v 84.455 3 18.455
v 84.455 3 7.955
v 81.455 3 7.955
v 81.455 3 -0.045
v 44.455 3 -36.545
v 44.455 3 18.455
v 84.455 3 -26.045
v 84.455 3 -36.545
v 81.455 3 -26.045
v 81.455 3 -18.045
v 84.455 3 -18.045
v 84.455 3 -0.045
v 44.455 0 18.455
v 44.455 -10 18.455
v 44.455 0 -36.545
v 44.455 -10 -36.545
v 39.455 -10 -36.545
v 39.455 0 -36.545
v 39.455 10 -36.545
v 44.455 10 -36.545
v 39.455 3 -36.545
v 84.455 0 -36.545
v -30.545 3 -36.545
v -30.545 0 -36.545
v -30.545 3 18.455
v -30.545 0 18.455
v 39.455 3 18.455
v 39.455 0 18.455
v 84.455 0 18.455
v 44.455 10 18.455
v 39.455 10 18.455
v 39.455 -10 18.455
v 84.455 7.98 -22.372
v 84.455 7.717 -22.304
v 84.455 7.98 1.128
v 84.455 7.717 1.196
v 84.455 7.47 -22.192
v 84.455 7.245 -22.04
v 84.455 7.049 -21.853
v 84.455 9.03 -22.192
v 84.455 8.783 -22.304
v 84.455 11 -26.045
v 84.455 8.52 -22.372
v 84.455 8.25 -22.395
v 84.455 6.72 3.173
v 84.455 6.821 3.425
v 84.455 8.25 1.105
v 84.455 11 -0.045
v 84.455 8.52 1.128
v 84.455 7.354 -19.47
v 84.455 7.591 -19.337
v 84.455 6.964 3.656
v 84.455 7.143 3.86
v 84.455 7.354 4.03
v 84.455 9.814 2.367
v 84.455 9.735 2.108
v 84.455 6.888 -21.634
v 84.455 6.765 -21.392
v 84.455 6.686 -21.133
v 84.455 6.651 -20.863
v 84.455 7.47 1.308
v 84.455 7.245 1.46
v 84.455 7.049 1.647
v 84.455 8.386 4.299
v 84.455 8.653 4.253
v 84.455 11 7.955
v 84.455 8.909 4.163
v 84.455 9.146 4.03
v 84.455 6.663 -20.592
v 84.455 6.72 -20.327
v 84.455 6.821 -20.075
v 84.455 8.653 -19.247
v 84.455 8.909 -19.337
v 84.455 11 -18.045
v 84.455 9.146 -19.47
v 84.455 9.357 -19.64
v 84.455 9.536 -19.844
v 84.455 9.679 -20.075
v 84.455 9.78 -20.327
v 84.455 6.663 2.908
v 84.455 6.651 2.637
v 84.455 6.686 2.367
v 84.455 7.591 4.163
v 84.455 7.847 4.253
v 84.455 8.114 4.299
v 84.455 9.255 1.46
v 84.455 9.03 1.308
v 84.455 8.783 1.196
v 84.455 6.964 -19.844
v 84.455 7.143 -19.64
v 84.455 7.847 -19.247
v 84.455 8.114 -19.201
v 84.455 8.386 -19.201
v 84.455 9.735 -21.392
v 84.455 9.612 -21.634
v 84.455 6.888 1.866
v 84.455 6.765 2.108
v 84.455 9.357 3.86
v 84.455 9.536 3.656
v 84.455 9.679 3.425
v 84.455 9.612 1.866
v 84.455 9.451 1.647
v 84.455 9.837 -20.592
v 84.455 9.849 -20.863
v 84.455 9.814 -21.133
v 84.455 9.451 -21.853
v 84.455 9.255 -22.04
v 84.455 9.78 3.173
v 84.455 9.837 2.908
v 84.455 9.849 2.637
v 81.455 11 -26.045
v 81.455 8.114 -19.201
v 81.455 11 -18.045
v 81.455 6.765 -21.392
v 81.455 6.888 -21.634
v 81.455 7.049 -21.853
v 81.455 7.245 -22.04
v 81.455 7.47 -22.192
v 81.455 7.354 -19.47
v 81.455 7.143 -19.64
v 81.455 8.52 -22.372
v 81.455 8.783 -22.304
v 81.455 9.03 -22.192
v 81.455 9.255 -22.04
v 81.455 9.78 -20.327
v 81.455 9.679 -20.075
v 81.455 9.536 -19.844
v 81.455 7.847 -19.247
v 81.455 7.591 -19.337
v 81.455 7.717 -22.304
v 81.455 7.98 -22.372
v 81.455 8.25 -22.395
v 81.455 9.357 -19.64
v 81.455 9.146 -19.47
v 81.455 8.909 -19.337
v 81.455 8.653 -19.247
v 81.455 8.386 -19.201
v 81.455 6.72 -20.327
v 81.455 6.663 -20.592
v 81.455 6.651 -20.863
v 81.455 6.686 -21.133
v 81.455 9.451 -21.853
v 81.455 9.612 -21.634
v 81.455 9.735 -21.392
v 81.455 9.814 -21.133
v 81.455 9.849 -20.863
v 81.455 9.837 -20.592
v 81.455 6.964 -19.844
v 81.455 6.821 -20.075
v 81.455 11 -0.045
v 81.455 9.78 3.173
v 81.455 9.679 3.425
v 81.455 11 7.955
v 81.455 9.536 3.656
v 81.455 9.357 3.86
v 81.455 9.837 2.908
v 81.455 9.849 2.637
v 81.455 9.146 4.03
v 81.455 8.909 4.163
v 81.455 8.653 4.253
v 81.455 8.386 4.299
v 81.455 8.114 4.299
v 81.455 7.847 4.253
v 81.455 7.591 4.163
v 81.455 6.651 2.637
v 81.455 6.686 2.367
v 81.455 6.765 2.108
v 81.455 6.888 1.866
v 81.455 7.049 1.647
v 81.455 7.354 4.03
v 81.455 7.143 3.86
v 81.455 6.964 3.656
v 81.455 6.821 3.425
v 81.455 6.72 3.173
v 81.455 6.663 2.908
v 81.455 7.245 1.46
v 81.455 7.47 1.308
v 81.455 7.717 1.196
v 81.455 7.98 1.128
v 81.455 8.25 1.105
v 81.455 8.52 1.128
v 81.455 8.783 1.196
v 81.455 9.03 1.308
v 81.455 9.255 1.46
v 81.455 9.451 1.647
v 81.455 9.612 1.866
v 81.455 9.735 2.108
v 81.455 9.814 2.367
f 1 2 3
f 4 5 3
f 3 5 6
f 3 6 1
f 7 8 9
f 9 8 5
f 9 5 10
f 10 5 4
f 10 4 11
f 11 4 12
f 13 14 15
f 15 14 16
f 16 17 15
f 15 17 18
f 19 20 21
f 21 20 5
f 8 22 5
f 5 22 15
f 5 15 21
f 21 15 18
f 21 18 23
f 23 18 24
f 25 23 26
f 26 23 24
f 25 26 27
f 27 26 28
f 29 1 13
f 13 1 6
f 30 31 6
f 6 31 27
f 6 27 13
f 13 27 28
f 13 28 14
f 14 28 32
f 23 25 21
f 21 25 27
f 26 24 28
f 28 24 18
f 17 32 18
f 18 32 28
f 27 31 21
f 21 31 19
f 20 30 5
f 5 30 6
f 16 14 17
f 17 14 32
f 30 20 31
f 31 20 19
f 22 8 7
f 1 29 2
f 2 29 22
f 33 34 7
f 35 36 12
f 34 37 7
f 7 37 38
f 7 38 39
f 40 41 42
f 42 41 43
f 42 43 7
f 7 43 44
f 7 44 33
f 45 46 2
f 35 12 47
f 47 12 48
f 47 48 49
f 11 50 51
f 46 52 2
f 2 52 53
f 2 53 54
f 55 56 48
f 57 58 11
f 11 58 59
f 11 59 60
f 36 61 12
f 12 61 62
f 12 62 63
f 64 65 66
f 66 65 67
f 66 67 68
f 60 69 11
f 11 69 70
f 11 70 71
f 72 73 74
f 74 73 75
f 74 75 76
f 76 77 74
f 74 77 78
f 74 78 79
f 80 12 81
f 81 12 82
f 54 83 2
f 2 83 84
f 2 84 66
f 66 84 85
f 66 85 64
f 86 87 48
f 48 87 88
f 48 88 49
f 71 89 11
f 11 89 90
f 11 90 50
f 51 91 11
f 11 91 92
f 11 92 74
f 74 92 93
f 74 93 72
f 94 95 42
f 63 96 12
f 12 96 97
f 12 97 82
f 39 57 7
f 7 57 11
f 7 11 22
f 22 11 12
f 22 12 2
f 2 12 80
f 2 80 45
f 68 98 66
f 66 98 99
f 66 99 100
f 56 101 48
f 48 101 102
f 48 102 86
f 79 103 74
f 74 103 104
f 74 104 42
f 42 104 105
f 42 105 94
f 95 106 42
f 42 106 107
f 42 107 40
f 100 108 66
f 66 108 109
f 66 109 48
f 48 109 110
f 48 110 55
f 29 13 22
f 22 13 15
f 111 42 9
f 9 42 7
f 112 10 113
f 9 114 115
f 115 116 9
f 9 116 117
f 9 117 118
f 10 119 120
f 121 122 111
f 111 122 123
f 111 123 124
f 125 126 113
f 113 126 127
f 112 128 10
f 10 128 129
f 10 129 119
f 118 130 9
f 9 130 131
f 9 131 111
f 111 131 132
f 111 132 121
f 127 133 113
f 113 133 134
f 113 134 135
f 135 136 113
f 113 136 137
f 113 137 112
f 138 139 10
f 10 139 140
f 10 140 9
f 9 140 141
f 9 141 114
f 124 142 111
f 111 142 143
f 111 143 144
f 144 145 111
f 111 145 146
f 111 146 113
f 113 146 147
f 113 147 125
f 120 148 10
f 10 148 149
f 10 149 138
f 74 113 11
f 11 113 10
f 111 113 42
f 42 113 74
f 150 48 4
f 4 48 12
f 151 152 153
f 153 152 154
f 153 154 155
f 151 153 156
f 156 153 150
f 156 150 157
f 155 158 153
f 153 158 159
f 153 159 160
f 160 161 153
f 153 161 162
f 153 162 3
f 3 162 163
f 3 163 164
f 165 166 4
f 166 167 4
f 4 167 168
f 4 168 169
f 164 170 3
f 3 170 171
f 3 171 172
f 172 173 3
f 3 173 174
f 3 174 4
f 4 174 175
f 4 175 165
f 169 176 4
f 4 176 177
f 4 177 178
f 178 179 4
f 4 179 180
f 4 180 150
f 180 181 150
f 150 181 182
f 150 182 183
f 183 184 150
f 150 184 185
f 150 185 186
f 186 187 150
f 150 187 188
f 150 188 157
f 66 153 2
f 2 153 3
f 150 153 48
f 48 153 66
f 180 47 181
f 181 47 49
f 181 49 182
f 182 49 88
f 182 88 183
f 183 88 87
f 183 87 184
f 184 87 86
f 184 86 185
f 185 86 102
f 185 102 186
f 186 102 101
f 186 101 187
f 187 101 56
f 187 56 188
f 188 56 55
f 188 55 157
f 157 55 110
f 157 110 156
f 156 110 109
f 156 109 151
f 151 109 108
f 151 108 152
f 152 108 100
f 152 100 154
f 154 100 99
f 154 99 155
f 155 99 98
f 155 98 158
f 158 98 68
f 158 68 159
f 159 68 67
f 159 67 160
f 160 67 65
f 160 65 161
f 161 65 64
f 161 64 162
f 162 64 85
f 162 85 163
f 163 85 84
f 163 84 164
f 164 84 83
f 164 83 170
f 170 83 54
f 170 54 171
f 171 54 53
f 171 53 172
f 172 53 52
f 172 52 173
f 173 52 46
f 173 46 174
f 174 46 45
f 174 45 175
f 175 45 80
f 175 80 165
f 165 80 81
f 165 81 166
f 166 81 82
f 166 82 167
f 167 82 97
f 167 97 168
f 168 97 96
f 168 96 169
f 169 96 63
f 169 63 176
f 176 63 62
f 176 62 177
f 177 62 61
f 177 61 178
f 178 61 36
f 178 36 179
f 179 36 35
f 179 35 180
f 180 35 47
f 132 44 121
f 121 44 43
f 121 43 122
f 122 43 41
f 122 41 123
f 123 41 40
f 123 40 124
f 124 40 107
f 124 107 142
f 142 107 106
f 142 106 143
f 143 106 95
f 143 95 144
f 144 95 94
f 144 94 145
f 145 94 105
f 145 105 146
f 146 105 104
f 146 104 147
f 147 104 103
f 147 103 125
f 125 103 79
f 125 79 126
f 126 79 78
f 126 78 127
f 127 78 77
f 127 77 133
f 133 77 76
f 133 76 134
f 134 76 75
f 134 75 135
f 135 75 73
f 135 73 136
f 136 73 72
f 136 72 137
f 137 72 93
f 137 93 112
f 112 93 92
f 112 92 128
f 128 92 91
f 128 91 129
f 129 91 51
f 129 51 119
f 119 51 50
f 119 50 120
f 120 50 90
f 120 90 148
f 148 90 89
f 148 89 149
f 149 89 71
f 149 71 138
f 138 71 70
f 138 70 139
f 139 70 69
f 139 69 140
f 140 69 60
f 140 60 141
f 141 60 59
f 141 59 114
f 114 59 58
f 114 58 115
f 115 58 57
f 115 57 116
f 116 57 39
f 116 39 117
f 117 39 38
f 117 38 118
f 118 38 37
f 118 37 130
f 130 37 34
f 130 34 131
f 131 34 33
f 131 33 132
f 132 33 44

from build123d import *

# Parameters (mm, degrees)
SKETCH2_W                = 70
SKETCH2_H                = 55
BOSS_EXTRUDE3_DEPTH      = 3
BOSS_EXTRUDE4_DEPTH      = 10
BOSS_EXTRUDE4_DEPTH_BACK = 10
SKETCH5_W                = 5
SKETCH5_H                = 55
SKETCH6_W                = 40
SKETCH6_H                = 55
BOSS_EXTRUDE5_DEPTH      = 3
SKETCH8_W                = 3
SKETCH8_H                = 8
BOSS_EXTRUDE6_DEPTH      = 11
SKETCH9_R                = 1.6
CUT_EXTRUDE1_DEPTH       = 11


with BuildPart() as part:
    # Sketch2 → Boss-Extrude3 (new body)
    with BuildSketch(Plane(origin=(0, 0, 0), x_dir=(1, 0, 0), z_dir=(0, 1, 0))):
        with Locations((4.454545455, 9.045454545)):
            Rectangle(SKETCH2_W, SKETCH2_H)
    extrude(amount=BOSS_EXTRUDE3_DEPTH)

    # Sketch5 → Boss-Extrude4 (add, two sides: drawn at the far end of the back side and taken through both)
    with BuildSketch(Plane(origin=(0, 0, 0), x_dir=(1, 0, 0), z_dir=(0, 1, 0)).offset(-BOSS_EXTRUDE4_DEPTH_BACK)):
        with Locations((41.954545455, 9.045454545)):
            Rectangle(SKETCH5_W, SKETCH5_H)
    extrude(amount=BOSS_EXTRUDE4_DEPTH + BOSS_EXTRUDE4_DEPTH_BACK)

    # Sketch6 → Boss-Extrude5 (add)
    with BuildSketch(Plane(origin=(0, 0, 0), x_dir=(1, 0, 0), z_dir=(0, 1, 0))):
        with Locations((64.454545455, 9.045454545)):
            Rectangle(SKETCH6_W, SKETCH6_H)
    extrude(amount=BOSS_EXTRUDE5_DEPTH)

    # Sketch8 → Boss-Extrude6 (add)
    with BuildSketch(Plane(origin=(0, 0, 0), x_dir=(1, 0, 0), z_dir=(0, 1, 0))):
        with Locations((82.954545455, 22.045454545)):
            Rectangle(SKETCH8_W, SKETCH8_H)
        with Locations((82.954545455, -3.954545455)):
            Rectangle(SKETCH8_W, SKETCH8_H)
    extrude(amount=BOSS_EXTRUDE6_DEPTH)

    # Sketch9 → Cut-Extrude1 (cut)
    with BuildSketch(Plane(origin=(84.454545455, 0, 0), x_dir=(0, 0, -1), z_dir=(1, 0, 0))):
        with Locations((-2.704545455, 8.25)):
            Circle(SKETCH9_R)
        with Locations((20.795454545, 8.25)):
            Circle(SKETCH9_R)
    extrude(amount=-CUT_EXTRUDE1_DEPTH, mode=Mode.SUBTRACT)


solid = part.part
